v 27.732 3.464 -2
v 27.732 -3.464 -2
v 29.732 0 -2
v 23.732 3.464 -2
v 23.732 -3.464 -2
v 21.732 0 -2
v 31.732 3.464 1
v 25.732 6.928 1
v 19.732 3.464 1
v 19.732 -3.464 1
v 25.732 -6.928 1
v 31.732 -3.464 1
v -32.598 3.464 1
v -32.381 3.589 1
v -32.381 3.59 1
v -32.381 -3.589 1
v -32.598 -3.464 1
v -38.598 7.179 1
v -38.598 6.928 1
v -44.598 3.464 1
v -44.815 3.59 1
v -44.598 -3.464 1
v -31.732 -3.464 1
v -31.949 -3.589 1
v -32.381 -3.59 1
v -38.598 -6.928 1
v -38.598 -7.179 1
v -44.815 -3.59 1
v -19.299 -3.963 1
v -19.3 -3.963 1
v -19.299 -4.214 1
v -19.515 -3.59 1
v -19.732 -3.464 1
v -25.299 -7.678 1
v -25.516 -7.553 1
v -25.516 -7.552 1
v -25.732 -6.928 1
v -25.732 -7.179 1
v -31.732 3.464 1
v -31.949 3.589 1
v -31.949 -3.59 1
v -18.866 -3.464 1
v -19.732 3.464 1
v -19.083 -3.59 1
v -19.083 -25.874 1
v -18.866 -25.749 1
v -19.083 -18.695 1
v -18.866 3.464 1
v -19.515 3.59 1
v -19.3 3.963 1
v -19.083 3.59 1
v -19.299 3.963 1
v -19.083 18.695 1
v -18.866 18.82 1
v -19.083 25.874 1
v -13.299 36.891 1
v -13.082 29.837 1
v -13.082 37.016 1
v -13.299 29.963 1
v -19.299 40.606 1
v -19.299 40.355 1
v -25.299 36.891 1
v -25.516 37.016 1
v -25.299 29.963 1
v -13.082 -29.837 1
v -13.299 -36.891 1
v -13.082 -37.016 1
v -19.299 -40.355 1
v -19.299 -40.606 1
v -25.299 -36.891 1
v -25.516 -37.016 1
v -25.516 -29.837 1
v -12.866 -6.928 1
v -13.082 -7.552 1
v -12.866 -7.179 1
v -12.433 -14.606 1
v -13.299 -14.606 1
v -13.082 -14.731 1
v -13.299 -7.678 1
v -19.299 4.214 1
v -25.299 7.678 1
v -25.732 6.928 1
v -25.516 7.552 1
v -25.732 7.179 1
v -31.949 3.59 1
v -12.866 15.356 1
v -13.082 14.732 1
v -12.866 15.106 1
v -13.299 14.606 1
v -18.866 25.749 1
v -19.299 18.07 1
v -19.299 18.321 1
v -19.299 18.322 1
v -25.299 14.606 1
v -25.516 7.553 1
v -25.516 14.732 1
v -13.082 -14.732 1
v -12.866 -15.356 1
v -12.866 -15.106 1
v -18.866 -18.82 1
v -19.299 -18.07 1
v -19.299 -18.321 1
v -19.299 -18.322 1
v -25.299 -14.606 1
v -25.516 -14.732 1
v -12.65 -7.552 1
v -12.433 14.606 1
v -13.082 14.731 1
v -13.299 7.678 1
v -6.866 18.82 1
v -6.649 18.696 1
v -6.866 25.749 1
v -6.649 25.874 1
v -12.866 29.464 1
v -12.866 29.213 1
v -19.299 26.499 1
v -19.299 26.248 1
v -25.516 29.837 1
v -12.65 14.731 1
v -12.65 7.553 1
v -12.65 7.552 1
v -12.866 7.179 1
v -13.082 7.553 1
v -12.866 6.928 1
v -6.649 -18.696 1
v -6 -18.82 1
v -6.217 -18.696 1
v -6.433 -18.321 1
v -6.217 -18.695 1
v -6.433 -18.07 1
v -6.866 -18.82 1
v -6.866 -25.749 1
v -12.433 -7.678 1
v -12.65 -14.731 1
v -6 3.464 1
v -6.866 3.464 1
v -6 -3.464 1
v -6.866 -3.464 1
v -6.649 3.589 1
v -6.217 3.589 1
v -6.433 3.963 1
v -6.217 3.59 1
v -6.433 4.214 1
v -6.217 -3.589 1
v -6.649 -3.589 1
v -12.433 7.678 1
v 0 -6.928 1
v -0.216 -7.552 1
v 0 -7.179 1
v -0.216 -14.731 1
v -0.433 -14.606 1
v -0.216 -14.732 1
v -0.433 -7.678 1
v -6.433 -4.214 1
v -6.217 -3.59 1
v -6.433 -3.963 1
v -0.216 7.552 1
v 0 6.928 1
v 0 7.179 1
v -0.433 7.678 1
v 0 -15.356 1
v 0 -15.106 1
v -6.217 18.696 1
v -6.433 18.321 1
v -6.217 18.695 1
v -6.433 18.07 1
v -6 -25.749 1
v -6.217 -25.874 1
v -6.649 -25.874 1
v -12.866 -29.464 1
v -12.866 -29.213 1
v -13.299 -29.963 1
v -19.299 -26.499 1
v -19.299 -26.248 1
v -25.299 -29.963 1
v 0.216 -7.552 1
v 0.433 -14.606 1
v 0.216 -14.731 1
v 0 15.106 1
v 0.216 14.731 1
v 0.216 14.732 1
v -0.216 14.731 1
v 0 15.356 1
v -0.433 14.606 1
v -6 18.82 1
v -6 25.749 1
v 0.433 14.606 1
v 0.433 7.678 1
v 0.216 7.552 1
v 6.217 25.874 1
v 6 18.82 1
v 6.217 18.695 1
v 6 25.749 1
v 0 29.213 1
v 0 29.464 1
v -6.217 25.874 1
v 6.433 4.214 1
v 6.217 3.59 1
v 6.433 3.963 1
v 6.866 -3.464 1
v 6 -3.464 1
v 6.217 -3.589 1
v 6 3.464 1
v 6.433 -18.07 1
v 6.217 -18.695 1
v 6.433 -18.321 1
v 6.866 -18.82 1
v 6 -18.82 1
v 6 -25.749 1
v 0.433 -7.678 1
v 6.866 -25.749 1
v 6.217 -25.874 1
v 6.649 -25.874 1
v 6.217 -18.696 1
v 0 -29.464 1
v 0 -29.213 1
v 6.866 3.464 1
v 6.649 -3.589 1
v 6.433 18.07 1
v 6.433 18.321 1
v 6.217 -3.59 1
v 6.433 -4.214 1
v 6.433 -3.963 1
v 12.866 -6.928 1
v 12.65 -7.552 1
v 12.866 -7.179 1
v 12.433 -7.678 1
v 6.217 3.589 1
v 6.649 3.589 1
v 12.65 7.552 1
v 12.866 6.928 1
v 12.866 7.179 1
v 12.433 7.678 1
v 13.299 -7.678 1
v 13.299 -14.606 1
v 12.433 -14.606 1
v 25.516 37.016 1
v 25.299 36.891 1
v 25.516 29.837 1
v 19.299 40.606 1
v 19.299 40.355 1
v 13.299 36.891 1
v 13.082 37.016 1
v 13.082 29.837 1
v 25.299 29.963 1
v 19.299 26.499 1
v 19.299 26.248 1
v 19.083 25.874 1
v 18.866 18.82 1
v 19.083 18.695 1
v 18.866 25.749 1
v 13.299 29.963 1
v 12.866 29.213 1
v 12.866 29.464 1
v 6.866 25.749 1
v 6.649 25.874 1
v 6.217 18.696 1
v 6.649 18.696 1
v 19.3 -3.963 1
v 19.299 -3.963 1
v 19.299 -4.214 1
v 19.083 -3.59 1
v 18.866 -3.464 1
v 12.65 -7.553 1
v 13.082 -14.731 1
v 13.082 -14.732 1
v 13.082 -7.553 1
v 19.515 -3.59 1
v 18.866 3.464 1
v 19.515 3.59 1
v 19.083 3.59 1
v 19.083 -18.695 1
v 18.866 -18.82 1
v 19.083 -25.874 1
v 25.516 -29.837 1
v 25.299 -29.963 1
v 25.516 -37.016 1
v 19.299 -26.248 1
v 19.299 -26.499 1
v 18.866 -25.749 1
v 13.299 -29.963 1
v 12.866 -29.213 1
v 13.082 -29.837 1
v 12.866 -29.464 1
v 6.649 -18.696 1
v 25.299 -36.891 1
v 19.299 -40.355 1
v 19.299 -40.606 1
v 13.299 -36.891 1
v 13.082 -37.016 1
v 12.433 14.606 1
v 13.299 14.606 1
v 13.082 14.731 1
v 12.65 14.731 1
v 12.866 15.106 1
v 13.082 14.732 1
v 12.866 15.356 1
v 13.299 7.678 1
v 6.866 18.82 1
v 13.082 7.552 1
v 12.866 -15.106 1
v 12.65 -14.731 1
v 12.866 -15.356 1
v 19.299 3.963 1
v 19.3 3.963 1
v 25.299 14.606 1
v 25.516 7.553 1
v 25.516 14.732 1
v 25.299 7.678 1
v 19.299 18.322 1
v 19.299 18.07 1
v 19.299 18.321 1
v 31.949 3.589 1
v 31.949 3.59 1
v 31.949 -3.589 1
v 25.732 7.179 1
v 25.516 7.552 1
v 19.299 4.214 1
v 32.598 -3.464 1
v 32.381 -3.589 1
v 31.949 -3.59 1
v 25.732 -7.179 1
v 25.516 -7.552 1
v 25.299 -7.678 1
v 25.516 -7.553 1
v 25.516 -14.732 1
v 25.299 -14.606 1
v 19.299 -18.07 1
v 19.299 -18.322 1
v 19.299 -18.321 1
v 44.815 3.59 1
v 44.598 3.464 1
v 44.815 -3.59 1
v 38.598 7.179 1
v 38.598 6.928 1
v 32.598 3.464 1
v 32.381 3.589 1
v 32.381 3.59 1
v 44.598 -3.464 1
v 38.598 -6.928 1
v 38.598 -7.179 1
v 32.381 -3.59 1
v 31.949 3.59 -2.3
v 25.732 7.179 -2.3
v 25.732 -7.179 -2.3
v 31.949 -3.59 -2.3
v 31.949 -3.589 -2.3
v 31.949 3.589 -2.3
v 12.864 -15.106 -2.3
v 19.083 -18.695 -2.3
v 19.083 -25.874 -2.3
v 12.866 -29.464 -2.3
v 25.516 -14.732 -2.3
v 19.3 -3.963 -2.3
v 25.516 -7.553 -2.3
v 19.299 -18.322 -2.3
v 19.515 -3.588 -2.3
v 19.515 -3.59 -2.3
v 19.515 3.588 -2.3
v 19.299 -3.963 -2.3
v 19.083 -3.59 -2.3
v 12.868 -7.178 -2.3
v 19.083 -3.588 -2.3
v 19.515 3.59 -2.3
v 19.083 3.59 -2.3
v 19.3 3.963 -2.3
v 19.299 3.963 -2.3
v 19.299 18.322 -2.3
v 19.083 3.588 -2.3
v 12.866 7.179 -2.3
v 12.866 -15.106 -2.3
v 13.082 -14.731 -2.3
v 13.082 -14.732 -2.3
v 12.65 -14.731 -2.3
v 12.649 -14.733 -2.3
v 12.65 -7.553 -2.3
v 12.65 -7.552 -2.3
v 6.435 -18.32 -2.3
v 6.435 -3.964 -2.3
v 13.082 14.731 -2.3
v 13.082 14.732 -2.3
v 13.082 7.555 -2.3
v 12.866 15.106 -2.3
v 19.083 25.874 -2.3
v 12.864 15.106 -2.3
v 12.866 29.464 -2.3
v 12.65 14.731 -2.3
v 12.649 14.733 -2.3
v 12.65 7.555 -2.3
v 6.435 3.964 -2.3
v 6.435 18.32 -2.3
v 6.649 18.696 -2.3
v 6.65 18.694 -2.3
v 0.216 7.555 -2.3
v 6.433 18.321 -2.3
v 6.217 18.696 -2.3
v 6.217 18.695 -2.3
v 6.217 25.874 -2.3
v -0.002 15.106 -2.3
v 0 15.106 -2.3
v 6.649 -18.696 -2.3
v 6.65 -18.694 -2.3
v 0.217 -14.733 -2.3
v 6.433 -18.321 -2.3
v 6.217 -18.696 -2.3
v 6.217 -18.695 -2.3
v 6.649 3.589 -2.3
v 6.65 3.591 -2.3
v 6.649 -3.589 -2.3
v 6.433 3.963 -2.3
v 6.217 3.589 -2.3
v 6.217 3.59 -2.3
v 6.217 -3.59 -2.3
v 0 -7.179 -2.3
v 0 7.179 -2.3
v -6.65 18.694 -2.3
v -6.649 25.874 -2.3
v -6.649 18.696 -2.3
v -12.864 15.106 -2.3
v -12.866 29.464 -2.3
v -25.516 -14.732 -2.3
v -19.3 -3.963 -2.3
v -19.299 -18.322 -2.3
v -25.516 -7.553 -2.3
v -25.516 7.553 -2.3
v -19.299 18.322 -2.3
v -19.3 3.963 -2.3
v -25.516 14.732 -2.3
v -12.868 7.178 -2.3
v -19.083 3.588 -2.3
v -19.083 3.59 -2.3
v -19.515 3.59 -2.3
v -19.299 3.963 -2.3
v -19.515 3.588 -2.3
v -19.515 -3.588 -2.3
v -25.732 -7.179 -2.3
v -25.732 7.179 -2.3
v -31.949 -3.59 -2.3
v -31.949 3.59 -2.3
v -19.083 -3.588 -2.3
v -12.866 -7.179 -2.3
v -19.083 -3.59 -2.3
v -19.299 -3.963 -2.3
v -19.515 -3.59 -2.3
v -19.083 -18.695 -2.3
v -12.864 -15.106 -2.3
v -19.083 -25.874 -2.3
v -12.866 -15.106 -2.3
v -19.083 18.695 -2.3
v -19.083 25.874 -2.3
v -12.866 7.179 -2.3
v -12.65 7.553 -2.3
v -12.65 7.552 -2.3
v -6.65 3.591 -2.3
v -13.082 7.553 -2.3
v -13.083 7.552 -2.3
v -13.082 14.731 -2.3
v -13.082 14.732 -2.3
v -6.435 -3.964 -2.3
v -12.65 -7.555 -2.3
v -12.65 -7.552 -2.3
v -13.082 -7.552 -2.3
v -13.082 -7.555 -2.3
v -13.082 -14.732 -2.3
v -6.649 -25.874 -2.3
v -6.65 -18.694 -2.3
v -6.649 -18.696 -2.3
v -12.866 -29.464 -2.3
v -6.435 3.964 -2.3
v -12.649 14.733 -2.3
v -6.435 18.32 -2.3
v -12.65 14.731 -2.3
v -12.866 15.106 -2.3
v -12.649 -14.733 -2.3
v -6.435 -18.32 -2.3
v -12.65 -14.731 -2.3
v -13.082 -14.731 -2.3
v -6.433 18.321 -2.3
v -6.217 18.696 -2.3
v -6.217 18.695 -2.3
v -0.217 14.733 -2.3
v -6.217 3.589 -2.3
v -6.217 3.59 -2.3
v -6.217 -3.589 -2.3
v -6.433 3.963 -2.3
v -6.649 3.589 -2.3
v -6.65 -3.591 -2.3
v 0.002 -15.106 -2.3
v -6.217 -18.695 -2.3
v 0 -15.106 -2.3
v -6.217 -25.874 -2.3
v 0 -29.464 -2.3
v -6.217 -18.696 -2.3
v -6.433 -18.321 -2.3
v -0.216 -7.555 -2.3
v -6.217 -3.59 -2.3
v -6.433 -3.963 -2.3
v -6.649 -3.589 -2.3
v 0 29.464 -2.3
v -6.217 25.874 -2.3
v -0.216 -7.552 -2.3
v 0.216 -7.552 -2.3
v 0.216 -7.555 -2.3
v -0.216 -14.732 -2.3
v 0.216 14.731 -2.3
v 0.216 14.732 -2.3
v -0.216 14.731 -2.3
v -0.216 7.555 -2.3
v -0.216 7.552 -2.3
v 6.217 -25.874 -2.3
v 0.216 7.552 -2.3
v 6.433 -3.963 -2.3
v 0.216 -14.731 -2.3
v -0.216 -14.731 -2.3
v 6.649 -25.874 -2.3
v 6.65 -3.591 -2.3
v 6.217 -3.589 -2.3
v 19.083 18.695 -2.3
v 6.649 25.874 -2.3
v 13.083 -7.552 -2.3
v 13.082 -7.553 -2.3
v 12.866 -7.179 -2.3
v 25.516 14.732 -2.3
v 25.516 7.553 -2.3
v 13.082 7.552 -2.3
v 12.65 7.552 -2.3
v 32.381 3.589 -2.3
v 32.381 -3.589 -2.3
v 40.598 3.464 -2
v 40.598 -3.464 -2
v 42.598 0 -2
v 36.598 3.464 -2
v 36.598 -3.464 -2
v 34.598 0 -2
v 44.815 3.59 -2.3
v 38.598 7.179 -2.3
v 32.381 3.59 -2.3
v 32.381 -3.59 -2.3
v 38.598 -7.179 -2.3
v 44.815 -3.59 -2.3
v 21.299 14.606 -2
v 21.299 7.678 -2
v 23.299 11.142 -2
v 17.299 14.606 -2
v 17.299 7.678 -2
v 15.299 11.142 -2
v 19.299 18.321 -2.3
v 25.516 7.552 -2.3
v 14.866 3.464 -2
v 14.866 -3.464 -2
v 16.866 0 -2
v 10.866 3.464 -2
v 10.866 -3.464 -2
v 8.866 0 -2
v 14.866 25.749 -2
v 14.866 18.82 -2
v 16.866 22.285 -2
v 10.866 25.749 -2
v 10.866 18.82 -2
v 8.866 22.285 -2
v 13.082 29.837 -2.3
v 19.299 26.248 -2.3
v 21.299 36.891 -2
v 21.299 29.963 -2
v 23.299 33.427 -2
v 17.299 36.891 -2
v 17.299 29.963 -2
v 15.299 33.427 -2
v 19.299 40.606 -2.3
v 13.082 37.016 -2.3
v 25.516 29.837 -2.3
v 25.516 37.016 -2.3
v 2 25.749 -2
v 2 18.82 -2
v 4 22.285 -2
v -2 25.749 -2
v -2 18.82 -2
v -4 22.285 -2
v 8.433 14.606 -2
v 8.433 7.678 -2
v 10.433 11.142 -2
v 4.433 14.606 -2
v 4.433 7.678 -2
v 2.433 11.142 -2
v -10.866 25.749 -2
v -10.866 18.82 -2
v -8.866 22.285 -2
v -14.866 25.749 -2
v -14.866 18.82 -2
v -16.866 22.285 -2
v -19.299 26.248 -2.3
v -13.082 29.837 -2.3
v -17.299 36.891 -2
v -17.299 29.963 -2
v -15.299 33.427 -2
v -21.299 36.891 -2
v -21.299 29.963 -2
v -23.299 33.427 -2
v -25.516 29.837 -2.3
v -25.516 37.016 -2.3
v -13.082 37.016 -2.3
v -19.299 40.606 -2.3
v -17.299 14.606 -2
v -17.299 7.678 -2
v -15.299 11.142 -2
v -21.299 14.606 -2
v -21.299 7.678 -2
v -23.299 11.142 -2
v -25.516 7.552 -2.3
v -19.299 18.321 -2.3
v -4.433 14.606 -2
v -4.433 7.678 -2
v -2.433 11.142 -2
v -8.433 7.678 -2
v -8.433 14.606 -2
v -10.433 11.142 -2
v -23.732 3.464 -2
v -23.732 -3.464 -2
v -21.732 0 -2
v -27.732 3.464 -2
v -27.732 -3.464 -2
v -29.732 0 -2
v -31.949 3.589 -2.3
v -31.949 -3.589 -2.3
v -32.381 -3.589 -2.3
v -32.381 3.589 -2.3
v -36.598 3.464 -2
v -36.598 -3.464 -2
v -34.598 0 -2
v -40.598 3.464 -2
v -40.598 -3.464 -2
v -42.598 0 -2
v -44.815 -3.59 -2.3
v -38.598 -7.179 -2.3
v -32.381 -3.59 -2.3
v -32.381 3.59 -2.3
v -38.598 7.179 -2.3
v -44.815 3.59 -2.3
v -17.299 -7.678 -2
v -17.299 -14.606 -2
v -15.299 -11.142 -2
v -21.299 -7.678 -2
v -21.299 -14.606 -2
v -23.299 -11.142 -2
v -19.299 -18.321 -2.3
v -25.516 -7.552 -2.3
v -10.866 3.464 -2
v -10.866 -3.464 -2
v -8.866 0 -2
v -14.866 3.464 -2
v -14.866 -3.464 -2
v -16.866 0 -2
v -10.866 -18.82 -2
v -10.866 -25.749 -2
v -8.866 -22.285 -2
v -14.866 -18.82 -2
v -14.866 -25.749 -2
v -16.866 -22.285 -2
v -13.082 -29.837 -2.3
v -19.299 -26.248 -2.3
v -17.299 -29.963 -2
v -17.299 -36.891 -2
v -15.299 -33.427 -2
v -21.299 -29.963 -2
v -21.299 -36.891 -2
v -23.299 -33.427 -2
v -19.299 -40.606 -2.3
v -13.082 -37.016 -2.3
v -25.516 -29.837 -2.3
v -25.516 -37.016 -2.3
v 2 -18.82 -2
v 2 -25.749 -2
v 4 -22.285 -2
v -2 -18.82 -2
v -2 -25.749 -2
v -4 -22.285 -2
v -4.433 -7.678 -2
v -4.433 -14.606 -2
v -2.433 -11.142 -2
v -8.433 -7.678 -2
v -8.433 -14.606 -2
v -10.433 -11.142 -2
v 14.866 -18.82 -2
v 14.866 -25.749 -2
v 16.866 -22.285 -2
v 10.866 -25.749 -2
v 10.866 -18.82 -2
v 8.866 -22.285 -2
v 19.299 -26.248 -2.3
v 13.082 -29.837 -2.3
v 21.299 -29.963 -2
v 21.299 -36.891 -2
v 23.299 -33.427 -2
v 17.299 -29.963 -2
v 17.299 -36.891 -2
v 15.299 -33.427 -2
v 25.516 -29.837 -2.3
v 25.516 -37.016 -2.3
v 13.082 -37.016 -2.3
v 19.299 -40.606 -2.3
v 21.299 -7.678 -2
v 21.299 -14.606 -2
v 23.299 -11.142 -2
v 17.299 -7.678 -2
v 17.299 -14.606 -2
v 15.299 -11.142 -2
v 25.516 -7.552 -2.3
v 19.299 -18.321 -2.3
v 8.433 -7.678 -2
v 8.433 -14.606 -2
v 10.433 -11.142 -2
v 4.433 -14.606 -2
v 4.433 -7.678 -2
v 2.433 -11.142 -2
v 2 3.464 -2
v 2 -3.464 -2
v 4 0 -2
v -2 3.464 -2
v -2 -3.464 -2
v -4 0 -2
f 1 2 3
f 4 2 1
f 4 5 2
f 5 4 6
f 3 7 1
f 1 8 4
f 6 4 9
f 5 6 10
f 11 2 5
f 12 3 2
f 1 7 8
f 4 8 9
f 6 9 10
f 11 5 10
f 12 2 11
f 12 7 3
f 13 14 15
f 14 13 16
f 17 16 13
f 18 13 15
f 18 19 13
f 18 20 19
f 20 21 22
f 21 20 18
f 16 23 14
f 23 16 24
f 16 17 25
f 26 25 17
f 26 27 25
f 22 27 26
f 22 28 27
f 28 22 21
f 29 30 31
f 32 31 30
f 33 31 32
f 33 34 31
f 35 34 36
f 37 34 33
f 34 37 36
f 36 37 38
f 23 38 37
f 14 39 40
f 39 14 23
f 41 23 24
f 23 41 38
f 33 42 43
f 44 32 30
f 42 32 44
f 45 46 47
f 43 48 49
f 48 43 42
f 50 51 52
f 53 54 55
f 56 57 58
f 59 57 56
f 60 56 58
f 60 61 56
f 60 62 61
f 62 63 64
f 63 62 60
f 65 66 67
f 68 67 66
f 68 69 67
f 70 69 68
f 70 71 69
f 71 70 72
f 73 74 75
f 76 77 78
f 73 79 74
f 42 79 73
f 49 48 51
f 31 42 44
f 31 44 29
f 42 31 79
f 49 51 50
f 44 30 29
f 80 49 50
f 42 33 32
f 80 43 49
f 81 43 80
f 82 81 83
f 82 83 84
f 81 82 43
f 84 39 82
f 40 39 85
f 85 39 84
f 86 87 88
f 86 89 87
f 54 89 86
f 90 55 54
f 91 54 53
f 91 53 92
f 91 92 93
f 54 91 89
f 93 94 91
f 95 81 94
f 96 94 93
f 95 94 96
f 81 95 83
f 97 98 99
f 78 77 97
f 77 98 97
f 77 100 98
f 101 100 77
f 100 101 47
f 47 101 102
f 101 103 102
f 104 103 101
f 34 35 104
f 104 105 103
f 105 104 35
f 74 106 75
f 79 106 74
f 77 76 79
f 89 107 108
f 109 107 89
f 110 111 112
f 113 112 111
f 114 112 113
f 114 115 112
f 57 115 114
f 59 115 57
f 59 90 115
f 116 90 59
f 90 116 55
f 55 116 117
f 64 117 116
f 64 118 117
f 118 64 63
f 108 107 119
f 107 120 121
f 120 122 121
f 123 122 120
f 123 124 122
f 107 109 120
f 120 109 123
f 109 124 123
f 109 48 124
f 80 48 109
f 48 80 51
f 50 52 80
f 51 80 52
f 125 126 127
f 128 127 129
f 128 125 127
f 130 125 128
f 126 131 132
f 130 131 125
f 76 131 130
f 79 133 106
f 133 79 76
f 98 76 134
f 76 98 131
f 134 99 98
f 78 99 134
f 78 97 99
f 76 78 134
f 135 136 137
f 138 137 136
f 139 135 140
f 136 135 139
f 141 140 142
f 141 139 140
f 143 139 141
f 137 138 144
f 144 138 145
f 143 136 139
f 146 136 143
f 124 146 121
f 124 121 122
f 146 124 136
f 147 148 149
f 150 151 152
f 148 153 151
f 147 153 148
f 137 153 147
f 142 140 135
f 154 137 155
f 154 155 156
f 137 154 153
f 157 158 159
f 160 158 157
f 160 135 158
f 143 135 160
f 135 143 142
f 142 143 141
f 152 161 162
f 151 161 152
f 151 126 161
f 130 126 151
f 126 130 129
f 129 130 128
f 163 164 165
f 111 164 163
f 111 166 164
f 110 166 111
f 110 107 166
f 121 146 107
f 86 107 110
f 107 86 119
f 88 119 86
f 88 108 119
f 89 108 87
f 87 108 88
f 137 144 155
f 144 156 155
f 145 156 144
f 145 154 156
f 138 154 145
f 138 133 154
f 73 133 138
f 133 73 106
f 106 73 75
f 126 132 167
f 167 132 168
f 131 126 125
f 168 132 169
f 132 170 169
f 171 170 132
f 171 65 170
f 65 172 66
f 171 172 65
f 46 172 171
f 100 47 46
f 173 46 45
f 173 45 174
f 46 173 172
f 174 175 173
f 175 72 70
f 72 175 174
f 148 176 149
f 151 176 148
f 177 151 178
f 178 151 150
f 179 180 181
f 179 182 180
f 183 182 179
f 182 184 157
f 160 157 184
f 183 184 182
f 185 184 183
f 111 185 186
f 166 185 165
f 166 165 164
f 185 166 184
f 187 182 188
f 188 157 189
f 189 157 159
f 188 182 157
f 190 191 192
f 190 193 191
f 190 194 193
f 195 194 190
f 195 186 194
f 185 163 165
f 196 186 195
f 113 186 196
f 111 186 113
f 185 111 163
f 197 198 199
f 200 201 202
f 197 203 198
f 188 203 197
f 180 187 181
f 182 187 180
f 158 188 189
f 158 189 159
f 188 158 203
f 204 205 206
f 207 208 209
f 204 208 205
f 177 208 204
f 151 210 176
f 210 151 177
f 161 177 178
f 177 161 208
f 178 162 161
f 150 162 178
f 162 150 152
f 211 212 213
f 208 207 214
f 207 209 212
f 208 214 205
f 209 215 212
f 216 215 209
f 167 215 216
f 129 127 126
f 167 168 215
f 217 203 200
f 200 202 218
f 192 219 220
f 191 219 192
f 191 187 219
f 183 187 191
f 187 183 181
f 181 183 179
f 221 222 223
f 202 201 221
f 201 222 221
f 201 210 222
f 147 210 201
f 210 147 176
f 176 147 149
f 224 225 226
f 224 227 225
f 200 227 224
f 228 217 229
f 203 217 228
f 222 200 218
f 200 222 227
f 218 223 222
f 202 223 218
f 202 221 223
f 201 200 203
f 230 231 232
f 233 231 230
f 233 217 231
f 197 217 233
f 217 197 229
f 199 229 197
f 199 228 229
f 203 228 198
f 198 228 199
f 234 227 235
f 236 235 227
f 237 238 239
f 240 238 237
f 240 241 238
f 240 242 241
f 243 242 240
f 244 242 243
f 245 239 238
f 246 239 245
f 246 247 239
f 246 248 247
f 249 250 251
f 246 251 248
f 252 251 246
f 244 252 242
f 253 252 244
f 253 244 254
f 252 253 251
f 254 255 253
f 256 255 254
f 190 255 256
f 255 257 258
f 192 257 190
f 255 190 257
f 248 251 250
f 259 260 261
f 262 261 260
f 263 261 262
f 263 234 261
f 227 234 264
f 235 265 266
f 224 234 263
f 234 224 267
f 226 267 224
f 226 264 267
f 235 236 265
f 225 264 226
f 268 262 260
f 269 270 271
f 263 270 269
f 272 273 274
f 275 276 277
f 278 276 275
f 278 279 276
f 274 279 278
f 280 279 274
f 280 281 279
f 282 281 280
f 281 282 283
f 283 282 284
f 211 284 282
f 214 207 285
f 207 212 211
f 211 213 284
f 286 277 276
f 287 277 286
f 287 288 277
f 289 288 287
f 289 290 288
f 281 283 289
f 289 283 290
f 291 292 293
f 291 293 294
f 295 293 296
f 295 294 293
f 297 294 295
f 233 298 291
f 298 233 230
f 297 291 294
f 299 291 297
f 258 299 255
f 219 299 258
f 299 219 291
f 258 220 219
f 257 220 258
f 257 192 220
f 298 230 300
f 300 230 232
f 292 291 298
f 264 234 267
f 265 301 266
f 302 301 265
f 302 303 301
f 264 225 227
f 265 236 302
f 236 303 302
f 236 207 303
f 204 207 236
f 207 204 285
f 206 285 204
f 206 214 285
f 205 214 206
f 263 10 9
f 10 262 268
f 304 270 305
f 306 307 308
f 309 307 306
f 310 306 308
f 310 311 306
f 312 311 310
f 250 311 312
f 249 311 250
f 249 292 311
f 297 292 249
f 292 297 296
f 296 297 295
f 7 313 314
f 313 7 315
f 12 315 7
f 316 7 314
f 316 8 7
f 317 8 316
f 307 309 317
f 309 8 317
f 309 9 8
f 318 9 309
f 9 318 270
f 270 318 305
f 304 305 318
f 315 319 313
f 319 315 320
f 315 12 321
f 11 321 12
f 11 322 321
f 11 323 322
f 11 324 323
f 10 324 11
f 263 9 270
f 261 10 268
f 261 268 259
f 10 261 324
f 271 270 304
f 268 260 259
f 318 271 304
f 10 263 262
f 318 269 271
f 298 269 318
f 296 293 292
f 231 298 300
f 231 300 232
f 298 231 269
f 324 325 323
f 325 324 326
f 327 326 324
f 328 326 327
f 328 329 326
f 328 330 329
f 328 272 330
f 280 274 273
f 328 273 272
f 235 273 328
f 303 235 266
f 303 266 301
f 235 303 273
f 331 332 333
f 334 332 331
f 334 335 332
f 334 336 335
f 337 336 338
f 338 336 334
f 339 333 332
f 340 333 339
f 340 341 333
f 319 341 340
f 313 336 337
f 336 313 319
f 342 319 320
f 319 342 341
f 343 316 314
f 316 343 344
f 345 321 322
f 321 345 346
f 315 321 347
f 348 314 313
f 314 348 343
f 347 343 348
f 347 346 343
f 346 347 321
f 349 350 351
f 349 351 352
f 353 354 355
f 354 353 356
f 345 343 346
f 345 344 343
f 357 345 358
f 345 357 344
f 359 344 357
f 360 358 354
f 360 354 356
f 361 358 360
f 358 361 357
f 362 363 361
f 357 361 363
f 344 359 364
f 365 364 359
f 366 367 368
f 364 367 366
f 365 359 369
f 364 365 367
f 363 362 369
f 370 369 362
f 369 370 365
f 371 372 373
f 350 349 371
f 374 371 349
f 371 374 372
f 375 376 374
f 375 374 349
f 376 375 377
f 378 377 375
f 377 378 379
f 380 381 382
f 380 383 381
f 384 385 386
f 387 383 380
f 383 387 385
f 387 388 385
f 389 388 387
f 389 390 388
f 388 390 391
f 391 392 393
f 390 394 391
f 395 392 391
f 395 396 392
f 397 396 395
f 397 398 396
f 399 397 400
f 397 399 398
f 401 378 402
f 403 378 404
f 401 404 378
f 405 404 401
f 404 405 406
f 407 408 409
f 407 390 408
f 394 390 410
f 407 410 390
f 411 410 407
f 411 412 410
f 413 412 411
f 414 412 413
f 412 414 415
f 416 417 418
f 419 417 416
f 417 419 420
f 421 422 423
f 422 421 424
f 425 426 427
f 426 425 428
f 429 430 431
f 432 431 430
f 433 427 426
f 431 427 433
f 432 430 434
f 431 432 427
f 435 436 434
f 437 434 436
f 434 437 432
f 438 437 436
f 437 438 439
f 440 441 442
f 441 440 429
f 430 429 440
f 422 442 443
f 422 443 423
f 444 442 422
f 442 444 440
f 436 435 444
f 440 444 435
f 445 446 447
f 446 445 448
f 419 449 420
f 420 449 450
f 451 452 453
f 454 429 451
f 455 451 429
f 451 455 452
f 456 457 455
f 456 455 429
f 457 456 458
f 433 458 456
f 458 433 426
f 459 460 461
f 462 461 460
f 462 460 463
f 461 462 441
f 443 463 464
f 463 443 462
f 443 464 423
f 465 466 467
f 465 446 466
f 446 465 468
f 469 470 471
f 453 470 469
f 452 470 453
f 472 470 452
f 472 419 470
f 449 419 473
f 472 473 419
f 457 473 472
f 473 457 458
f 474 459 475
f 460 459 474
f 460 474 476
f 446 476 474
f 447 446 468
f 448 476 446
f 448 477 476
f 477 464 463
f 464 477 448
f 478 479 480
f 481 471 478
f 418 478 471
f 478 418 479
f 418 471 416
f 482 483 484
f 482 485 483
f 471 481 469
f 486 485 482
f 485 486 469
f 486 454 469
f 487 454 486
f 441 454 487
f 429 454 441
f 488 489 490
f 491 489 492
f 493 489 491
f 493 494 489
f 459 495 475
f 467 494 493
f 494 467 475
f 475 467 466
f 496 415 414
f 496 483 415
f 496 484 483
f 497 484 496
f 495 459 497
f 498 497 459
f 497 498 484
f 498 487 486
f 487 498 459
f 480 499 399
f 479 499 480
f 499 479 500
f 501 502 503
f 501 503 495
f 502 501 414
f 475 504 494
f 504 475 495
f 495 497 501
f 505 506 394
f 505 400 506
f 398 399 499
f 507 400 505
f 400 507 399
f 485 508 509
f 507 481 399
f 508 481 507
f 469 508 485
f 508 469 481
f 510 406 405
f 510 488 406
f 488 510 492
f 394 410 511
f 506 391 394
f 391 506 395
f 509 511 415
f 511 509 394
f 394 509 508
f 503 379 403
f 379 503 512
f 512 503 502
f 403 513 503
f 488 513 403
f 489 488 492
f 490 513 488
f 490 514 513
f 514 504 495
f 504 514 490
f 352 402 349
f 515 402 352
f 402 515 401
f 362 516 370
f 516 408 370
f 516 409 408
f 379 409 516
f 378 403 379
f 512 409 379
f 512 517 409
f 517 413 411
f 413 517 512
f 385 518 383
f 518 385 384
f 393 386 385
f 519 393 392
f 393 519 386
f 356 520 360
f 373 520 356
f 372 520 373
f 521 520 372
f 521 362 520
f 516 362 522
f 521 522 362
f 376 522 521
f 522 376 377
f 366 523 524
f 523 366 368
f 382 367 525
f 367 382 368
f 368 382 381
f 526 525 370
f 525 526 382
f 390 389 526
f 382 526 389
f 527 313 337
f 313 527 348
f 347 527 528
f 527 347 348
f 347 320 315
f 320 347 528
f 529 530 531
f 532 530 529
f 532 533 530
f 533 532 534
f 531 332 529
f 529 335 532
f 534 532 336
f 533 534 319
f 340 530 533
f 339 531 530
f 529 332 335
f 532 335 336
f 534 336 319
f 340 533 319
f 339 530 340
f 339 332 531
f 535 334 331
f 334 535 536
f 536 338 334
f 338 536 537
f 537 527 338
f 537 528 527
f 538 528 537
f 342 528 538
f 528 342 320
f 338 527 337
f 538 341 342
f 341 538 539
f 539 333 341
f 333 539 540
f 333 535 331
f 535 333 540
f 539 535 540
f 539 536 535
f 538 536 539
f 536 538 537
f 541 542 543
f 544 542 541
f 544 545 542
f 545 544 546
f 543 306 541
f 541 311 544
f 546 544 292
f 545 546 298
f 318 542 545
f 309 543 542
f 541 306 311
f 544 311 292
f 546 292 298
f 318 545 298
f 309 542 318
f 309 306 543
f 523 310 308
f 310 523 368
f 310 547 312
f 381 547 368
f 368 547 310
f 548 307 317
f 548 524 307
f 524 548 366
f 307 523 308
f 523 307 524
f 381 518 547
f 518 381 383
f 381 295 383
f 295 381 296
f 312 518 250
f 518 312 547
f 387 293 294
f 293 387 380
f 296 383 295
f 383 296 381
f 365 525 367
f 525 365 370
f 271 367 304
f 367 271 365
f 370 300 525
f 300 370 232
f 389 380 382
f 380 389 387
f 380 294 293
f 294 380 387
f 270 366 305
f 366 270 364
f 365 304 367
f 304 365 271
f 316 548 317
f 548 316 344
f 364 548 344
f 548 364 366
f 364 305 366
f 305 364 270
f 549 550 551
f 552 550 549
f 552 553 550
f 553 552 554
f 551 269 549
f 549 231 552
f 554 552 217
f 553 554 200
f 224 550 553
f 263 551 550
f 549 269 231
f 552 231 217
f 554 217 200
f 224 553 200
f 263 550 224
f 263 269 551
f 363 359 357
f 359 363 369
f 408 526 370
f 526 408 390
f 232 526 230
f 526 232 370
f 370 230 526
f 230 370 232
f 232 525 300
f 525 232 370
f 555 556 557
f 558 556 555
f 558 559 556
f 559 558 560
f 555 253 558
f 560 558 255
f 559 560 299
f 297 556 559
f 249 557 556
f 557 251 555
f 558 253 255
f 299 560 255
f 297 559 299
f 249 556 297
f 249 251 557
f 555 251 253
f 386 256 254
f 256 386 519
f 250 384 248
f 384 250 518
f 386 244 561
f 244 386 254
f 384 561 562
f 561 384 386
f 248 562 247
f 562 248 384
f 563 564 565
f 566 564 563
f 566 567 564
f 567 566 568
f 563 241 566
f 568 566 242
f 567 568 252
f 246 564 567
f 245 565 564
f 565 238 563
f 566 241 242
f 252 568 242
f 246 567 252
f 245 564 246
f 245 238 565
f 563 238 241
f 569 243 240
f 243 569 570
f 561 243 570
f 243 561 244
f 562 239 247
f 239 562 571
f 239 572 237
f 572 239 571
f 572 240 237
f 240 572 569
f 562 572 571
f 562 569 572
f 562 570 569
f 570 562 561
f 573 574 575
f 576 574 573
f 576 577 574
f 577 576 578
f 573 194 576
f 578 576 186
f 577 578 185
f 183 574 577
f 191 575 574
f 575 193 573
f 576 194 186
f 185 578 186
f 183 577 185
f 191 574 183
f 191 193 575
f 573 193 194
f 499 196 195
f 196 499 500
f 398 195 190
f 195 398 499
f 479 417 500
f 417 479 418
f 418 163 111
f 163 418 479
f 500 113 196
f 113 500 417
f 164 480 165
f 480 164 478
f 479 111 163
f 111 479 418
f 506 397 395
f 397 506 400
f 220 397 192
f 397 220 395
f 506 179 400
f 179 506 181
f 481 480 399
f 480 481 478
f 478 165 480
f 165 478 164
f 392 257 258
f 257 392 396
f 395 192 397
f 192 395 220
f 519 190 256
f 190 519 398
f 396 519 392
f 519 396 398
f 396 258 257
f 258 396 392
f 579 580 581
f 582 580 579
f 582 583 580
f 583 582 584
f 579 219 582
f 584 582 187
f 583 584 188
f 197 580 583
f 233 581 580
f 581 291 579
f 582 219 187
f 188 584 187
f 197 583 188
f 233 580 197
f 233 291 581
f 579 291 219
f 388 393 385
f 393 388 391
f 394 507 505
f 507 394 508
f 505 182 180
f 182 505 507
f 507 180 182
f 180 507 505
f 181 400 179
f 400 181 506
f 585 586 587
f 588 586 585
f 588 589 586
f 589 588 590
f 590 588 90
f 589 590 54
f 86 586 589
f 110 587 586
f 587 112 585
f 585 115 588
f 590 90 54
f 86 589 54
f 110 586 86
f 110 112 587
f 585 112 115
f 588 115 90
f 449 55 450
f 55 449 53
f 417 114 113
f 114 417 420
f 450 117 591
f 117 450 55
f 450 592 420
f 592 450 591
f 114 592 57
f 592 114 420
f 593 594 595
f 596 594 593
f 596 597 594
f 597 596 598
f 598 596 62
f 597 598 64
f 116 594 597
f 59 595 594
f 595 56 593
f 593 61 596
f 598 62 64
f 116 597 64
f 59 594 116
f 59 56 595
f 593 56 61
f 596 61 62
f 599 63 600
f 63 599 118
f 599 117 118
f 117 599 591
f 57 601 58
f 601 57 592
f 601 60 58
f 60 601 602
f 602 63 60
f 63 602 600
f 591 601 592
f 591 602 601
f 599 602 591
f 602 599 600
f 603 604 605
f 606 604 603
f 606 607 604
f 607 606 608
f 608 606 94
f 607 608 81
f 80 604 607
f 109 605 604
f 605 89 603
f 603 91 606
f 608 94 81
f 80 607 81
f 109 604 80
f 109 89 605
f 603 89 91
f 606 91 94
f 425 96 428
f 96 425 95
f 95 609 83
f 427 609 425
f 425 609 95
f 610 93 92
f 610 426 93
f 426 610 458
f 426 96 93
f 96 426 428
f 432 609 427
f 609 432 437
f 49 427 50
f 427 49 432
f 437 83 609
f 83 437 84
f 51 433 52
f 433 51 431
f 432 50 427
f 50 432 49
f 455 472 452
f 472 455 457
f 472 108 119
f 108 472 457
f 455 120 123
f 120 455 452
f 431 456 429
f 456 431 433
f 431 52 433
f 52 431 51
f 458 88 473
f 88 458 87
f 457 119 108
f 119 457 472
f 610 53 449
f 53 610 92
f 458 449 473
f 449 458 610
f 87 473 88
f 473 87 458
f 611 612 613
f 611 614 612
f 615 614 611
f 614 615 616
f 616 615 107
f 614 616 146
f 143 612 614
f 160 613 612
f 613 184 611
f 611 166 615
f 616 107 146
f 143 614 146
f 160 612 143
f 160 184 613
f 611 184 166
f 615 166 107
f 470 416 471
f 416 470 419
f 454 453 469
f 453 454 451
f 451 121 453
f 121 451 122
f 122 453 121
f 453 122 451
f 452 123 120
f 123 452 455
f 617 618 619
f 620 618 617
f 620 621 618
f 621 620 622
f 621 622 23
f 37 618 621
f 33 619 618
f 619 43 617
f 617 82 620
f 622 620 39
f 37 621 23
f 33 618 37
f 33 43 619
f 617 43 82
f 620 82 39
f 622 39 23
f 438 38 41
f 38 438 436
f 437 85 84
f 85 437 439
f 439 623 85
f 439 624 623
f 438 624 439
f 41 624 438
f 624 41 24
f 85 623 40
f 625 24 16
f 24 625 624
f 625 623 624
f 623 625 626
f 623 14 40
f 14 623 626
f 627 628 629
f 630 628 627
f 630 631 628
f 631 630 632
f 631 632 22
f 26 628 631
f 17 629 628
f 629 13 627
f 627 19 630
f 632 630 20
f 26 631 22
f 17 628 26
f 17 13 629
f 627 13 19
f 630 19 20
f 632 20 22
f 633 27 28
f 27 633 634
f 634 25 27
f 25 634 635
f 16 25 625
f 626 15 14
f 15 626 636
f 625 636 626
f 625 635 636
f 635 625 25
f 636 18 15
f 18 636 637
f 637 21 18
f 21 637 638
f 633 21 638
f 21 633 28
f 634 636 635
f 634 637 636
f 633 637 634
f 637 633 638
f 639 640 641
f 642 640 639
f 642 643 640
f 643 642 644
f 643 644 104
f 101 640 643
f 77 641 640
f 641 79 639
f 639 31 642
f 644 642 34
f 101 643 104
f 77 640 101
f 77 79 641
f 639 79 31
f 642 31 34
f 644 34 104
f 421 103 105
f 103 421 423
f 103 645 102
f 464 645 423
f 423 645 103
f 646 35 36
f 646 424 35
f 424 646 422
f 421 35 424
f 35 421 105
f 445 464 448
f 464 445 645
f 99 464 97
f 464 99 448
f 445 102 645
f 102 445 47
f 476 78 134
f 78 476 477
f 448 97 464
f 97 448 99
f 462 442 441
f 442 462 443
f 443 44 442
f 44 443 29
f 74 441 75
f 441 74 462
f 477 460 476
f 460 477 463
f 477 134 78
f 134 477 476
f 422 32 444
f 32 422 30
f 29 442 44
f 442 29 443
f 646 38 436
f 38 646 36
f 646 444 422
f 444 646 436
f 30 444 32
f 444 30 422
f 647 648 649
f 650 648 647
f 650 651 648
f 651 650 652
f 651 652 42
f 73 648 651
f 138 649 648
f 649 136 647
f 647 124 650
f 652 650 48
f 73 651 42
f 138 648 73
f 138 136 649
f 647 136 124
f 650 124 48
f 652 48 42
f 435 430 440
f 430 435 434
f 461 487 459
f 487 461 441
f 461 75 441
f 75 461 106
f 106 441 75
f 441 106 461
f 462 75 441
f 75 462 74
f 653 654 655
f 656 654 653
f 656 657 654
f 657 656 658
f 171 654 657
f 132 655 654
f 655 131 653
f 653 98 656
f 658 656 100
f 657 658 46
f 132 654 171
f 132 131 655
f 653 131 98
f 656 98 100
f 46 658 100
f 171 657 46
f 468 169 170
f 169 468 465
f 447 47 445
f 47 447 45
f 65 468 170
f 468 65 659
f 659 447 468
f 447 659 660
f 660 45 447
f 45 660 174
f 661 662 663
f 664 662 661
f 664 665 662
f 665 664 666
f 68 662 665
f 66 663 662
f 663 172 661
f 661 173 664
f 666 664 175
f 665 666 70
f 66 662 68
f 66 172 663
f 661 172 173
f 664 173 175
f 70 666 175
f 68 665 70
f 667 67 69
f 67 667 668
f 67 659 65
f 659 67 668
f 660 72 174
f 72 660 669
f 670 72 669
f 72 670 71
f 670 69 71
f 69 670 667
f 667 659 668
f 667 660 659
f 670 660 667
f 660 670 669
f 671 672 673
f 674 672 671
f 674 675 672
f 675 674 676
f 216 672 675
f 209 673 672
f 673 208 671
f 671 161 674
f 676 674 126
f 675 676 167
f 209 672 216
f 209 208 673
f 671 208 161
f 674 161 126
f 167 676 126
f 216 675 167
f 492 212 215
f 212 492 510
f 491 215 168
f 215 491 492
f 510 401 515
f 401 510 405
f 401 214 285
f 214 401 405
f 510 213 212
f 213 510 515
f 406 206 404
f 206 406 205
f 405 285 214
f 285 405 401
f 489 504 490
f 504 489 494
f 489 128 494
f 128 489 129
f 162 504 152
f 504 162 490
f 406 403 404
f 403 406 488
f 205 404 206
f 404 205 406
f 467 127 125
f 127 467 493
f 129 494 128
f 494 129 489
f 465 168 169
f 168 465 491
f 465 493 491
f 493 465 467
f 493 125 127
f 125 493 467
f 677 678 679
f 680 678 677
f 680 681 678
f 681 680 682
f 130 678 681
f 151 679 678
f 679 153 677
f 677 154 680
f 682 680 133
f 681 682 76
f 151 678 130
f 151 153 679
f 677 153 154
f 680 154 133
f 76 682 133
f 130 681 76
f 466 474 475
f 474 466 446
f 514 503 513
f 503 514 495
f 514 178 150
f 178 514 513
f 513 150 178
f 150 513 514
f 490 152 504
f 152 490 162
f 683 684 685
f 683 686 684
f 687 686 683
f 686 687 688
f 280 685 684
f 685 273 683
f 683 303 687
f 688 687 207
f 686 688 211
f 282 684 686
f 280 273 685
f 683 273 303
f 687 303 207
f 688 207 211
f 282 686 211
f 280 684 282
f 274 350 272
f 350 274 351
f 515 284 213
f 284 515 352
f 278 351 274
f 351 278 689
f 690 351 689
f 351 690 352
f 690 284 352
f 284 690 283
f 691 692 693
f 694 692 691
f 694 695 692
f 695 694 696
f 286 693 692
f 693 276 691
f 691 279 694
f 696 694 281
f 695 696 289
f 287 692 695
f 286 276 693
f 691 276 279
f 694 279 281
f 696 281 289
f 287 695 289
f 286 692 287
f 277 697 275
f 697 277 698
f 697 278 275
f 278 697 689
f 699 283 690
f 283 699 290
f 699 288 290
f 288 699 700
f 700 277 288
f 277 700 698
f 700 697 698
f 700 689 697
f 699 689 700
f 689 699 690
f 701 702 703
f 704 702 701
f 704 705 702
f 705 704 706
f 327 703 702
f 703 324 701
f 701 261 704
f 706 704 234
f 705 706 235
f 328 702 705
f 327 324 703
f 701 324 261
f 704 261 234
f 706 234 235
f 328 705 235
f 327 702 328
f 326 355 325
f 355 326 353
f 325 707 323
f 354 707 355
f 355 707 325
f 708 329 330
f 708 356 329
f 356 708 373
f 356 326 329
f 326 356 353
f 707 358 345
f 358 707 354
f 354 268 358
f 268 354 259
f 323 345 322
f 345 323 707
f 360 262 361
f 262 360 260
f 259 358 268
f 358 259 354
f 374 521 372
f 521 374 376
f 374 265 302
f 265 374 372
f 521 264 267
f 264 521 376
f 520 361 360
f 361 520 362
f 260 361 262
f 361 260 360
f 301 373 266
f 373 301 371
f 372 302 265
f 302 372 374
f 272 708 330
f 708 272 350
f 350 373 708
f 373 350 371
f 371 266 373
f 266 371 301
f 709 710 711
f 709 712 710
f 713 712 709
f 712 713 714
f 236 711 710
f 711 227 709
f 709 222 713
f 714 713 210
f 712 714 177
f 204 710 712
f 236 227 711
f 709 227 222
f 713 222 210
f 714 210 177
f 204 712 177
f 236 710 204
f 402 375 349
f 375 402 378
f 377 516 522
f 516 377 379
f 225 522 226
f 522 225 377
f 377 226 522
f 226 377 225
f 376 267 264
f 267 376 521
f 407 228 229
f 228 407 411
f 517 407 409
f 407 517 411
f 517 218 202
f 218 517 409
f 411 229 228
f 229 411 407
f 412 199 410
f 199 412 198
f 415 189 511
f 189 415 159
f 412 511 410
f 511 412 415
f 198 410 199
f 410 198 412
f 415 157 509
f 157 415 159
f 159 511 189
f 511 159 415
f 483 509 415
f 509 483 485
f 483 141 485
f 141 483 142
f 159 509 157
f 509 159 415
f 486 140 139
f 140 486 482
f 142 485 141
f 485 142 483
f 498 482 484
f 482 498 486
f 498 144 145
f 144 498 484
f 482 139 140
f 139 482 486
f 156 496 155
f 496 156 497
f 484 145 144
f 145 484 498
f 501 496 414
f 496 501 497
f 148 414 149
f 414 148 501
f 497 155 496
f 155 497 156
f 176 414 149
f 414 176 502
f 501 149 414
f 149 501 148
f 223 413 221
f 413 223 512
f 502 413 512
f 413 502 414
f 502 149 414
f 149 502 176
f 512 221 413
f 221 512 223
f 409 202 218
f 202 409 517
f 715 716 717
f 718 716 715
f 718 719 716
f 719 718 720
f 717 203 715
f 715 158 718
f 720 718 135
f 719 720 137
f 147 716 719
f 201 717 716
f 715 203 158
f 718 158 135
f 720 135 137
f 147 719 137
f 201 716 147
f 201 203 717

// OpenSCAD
// file: tray-common.scad
angles = [for(i = [0:5]) i * (360 / 6)];

inner_poly_radius=8 * cos(60);
outer_poly_radius=8 * cos(30);
outer_poly_border_radius = outer_poly_radius + .25;

outer_poly_z=1;
inner_poly_z=3;
height=2.3;
overlap = 0.001;

gap_between_gems = cos(30);
distance_to_corner = cos(30) * (outer_poly_radius + .5) * 2;

function make_point_2d(r, angle, height) = [r * sin(angle), height];
function make_point(r, angle, height) = [r * cos(angle), r * sin(angle), height];
function make_point_2d2(r, angle) = [r * cos(angle), r * sin(angle)];

module edge_connector(angle = 0) {
    points = [
        make_point_2d(outer_poly_border_radius, 30, outer_poly_z),
        make_point_2d(outer_poly_border_radius, -30, outer_poly_z),
        make_point_2d(outer_poly_border_radius, -30, -height),
        make_point_2d(outer_poly_border_radius, 30, -height),
    ];
    
    rotate([0,0,angle]) {
        translate([(distance_to_corner - gap_between_gems/2) / 2,0,0]){
            rotate([90, 0, 90]) {
                linear_extrude(gap_between_gems/2) {
                    polygon(points);
                }
            }
        }
    }
}



module corner_connector(angle=0) {
    r = 1/4 + overlap;
    rotate_angle = angle + 30;
    
    points = [
        make_point_2d2(r, -rotate_angle),
        make_point_2d2(r, -rotate_angle - 120),
        make_point_2d2(r, -rotate_angle - 240),
    ];

    move(outer_poly_border_radius + r, rotate_angle) {
        translate([0,0,-height]) {
            linear_extrude(height + outer_poly_z) {
                polygon(points);
            }
        }
    }
}

module tray() {    
    function rot(n, base) = (n + 1 - base) % 6 + base;
    
    cup_poly = [for(th = angles) make_point(inner_poly_radius, th, outer_poly_z-inner_poly_z)];
    top_outer_poly = [for(th = angles) make_point(outer_poly_radius, th + 30, outer_poly_z)];
    top_outer_outer_poly = [for(th = angles) make_point(outer_poly_border_radius + overlap, th + 30, outer_poly_z)];
    bottom_outer_poly = [for(th = angles) make_point(outer_poly_border_radius + overlap, th + 30, -height)];

    faces = [
        [5, 4, 3, 2, 1, 0],
        for(i = [0:5]) [i, (i + 1) % 6, i + 6],
        for(i = [6:11]) [i, (i - 5) % 6, rot(i, 6)],
        for(i = [6:11]) [i, rot(i, 6), rot(i, 6) + 6, i + 6],
        for(i = [12:17]) [i, rot(i, 12), rot(i, 12) + 6, i + 6],
        [18, 19, 20, 21, 22, 23],
    ];

    polyhedron(
        concat(
            cup_poly,
            top_outer_poly,
            top_outer_outer_poly,
            bottom_outer_poly
        ),
        faces
    );
    children();
}

module move(distance, angle) {
    translate([distance * cos(angle), distance * sin(angle), 0]) {
        children();
    }
}
// main file
include <./tray-common.scad>

// 0 row
tray();

for(i = [0:60:300]) {
    edge_connector(i);
    corner_connector(i);
    rotate([0,0,i]) {
        move(distance_to_corner, 0) {
            tray();
            edge_connector(0);
            edge_connector(120);
            corner_connector(60);
            move(distance_to_corner, 0) {
                tray();
                edge_connector(0);
                move(distance_to_corner, 0) {
                    tray();
                }
            }
            move(distance_to_corner, 60) {
                tray();
                edge_connector(120);
                corner_connector(120);
                edge_connector(-120);
                edge_connector(180);
                corner_connector(-120);
                edge_connector(-60);
            }
        }
    }
}
